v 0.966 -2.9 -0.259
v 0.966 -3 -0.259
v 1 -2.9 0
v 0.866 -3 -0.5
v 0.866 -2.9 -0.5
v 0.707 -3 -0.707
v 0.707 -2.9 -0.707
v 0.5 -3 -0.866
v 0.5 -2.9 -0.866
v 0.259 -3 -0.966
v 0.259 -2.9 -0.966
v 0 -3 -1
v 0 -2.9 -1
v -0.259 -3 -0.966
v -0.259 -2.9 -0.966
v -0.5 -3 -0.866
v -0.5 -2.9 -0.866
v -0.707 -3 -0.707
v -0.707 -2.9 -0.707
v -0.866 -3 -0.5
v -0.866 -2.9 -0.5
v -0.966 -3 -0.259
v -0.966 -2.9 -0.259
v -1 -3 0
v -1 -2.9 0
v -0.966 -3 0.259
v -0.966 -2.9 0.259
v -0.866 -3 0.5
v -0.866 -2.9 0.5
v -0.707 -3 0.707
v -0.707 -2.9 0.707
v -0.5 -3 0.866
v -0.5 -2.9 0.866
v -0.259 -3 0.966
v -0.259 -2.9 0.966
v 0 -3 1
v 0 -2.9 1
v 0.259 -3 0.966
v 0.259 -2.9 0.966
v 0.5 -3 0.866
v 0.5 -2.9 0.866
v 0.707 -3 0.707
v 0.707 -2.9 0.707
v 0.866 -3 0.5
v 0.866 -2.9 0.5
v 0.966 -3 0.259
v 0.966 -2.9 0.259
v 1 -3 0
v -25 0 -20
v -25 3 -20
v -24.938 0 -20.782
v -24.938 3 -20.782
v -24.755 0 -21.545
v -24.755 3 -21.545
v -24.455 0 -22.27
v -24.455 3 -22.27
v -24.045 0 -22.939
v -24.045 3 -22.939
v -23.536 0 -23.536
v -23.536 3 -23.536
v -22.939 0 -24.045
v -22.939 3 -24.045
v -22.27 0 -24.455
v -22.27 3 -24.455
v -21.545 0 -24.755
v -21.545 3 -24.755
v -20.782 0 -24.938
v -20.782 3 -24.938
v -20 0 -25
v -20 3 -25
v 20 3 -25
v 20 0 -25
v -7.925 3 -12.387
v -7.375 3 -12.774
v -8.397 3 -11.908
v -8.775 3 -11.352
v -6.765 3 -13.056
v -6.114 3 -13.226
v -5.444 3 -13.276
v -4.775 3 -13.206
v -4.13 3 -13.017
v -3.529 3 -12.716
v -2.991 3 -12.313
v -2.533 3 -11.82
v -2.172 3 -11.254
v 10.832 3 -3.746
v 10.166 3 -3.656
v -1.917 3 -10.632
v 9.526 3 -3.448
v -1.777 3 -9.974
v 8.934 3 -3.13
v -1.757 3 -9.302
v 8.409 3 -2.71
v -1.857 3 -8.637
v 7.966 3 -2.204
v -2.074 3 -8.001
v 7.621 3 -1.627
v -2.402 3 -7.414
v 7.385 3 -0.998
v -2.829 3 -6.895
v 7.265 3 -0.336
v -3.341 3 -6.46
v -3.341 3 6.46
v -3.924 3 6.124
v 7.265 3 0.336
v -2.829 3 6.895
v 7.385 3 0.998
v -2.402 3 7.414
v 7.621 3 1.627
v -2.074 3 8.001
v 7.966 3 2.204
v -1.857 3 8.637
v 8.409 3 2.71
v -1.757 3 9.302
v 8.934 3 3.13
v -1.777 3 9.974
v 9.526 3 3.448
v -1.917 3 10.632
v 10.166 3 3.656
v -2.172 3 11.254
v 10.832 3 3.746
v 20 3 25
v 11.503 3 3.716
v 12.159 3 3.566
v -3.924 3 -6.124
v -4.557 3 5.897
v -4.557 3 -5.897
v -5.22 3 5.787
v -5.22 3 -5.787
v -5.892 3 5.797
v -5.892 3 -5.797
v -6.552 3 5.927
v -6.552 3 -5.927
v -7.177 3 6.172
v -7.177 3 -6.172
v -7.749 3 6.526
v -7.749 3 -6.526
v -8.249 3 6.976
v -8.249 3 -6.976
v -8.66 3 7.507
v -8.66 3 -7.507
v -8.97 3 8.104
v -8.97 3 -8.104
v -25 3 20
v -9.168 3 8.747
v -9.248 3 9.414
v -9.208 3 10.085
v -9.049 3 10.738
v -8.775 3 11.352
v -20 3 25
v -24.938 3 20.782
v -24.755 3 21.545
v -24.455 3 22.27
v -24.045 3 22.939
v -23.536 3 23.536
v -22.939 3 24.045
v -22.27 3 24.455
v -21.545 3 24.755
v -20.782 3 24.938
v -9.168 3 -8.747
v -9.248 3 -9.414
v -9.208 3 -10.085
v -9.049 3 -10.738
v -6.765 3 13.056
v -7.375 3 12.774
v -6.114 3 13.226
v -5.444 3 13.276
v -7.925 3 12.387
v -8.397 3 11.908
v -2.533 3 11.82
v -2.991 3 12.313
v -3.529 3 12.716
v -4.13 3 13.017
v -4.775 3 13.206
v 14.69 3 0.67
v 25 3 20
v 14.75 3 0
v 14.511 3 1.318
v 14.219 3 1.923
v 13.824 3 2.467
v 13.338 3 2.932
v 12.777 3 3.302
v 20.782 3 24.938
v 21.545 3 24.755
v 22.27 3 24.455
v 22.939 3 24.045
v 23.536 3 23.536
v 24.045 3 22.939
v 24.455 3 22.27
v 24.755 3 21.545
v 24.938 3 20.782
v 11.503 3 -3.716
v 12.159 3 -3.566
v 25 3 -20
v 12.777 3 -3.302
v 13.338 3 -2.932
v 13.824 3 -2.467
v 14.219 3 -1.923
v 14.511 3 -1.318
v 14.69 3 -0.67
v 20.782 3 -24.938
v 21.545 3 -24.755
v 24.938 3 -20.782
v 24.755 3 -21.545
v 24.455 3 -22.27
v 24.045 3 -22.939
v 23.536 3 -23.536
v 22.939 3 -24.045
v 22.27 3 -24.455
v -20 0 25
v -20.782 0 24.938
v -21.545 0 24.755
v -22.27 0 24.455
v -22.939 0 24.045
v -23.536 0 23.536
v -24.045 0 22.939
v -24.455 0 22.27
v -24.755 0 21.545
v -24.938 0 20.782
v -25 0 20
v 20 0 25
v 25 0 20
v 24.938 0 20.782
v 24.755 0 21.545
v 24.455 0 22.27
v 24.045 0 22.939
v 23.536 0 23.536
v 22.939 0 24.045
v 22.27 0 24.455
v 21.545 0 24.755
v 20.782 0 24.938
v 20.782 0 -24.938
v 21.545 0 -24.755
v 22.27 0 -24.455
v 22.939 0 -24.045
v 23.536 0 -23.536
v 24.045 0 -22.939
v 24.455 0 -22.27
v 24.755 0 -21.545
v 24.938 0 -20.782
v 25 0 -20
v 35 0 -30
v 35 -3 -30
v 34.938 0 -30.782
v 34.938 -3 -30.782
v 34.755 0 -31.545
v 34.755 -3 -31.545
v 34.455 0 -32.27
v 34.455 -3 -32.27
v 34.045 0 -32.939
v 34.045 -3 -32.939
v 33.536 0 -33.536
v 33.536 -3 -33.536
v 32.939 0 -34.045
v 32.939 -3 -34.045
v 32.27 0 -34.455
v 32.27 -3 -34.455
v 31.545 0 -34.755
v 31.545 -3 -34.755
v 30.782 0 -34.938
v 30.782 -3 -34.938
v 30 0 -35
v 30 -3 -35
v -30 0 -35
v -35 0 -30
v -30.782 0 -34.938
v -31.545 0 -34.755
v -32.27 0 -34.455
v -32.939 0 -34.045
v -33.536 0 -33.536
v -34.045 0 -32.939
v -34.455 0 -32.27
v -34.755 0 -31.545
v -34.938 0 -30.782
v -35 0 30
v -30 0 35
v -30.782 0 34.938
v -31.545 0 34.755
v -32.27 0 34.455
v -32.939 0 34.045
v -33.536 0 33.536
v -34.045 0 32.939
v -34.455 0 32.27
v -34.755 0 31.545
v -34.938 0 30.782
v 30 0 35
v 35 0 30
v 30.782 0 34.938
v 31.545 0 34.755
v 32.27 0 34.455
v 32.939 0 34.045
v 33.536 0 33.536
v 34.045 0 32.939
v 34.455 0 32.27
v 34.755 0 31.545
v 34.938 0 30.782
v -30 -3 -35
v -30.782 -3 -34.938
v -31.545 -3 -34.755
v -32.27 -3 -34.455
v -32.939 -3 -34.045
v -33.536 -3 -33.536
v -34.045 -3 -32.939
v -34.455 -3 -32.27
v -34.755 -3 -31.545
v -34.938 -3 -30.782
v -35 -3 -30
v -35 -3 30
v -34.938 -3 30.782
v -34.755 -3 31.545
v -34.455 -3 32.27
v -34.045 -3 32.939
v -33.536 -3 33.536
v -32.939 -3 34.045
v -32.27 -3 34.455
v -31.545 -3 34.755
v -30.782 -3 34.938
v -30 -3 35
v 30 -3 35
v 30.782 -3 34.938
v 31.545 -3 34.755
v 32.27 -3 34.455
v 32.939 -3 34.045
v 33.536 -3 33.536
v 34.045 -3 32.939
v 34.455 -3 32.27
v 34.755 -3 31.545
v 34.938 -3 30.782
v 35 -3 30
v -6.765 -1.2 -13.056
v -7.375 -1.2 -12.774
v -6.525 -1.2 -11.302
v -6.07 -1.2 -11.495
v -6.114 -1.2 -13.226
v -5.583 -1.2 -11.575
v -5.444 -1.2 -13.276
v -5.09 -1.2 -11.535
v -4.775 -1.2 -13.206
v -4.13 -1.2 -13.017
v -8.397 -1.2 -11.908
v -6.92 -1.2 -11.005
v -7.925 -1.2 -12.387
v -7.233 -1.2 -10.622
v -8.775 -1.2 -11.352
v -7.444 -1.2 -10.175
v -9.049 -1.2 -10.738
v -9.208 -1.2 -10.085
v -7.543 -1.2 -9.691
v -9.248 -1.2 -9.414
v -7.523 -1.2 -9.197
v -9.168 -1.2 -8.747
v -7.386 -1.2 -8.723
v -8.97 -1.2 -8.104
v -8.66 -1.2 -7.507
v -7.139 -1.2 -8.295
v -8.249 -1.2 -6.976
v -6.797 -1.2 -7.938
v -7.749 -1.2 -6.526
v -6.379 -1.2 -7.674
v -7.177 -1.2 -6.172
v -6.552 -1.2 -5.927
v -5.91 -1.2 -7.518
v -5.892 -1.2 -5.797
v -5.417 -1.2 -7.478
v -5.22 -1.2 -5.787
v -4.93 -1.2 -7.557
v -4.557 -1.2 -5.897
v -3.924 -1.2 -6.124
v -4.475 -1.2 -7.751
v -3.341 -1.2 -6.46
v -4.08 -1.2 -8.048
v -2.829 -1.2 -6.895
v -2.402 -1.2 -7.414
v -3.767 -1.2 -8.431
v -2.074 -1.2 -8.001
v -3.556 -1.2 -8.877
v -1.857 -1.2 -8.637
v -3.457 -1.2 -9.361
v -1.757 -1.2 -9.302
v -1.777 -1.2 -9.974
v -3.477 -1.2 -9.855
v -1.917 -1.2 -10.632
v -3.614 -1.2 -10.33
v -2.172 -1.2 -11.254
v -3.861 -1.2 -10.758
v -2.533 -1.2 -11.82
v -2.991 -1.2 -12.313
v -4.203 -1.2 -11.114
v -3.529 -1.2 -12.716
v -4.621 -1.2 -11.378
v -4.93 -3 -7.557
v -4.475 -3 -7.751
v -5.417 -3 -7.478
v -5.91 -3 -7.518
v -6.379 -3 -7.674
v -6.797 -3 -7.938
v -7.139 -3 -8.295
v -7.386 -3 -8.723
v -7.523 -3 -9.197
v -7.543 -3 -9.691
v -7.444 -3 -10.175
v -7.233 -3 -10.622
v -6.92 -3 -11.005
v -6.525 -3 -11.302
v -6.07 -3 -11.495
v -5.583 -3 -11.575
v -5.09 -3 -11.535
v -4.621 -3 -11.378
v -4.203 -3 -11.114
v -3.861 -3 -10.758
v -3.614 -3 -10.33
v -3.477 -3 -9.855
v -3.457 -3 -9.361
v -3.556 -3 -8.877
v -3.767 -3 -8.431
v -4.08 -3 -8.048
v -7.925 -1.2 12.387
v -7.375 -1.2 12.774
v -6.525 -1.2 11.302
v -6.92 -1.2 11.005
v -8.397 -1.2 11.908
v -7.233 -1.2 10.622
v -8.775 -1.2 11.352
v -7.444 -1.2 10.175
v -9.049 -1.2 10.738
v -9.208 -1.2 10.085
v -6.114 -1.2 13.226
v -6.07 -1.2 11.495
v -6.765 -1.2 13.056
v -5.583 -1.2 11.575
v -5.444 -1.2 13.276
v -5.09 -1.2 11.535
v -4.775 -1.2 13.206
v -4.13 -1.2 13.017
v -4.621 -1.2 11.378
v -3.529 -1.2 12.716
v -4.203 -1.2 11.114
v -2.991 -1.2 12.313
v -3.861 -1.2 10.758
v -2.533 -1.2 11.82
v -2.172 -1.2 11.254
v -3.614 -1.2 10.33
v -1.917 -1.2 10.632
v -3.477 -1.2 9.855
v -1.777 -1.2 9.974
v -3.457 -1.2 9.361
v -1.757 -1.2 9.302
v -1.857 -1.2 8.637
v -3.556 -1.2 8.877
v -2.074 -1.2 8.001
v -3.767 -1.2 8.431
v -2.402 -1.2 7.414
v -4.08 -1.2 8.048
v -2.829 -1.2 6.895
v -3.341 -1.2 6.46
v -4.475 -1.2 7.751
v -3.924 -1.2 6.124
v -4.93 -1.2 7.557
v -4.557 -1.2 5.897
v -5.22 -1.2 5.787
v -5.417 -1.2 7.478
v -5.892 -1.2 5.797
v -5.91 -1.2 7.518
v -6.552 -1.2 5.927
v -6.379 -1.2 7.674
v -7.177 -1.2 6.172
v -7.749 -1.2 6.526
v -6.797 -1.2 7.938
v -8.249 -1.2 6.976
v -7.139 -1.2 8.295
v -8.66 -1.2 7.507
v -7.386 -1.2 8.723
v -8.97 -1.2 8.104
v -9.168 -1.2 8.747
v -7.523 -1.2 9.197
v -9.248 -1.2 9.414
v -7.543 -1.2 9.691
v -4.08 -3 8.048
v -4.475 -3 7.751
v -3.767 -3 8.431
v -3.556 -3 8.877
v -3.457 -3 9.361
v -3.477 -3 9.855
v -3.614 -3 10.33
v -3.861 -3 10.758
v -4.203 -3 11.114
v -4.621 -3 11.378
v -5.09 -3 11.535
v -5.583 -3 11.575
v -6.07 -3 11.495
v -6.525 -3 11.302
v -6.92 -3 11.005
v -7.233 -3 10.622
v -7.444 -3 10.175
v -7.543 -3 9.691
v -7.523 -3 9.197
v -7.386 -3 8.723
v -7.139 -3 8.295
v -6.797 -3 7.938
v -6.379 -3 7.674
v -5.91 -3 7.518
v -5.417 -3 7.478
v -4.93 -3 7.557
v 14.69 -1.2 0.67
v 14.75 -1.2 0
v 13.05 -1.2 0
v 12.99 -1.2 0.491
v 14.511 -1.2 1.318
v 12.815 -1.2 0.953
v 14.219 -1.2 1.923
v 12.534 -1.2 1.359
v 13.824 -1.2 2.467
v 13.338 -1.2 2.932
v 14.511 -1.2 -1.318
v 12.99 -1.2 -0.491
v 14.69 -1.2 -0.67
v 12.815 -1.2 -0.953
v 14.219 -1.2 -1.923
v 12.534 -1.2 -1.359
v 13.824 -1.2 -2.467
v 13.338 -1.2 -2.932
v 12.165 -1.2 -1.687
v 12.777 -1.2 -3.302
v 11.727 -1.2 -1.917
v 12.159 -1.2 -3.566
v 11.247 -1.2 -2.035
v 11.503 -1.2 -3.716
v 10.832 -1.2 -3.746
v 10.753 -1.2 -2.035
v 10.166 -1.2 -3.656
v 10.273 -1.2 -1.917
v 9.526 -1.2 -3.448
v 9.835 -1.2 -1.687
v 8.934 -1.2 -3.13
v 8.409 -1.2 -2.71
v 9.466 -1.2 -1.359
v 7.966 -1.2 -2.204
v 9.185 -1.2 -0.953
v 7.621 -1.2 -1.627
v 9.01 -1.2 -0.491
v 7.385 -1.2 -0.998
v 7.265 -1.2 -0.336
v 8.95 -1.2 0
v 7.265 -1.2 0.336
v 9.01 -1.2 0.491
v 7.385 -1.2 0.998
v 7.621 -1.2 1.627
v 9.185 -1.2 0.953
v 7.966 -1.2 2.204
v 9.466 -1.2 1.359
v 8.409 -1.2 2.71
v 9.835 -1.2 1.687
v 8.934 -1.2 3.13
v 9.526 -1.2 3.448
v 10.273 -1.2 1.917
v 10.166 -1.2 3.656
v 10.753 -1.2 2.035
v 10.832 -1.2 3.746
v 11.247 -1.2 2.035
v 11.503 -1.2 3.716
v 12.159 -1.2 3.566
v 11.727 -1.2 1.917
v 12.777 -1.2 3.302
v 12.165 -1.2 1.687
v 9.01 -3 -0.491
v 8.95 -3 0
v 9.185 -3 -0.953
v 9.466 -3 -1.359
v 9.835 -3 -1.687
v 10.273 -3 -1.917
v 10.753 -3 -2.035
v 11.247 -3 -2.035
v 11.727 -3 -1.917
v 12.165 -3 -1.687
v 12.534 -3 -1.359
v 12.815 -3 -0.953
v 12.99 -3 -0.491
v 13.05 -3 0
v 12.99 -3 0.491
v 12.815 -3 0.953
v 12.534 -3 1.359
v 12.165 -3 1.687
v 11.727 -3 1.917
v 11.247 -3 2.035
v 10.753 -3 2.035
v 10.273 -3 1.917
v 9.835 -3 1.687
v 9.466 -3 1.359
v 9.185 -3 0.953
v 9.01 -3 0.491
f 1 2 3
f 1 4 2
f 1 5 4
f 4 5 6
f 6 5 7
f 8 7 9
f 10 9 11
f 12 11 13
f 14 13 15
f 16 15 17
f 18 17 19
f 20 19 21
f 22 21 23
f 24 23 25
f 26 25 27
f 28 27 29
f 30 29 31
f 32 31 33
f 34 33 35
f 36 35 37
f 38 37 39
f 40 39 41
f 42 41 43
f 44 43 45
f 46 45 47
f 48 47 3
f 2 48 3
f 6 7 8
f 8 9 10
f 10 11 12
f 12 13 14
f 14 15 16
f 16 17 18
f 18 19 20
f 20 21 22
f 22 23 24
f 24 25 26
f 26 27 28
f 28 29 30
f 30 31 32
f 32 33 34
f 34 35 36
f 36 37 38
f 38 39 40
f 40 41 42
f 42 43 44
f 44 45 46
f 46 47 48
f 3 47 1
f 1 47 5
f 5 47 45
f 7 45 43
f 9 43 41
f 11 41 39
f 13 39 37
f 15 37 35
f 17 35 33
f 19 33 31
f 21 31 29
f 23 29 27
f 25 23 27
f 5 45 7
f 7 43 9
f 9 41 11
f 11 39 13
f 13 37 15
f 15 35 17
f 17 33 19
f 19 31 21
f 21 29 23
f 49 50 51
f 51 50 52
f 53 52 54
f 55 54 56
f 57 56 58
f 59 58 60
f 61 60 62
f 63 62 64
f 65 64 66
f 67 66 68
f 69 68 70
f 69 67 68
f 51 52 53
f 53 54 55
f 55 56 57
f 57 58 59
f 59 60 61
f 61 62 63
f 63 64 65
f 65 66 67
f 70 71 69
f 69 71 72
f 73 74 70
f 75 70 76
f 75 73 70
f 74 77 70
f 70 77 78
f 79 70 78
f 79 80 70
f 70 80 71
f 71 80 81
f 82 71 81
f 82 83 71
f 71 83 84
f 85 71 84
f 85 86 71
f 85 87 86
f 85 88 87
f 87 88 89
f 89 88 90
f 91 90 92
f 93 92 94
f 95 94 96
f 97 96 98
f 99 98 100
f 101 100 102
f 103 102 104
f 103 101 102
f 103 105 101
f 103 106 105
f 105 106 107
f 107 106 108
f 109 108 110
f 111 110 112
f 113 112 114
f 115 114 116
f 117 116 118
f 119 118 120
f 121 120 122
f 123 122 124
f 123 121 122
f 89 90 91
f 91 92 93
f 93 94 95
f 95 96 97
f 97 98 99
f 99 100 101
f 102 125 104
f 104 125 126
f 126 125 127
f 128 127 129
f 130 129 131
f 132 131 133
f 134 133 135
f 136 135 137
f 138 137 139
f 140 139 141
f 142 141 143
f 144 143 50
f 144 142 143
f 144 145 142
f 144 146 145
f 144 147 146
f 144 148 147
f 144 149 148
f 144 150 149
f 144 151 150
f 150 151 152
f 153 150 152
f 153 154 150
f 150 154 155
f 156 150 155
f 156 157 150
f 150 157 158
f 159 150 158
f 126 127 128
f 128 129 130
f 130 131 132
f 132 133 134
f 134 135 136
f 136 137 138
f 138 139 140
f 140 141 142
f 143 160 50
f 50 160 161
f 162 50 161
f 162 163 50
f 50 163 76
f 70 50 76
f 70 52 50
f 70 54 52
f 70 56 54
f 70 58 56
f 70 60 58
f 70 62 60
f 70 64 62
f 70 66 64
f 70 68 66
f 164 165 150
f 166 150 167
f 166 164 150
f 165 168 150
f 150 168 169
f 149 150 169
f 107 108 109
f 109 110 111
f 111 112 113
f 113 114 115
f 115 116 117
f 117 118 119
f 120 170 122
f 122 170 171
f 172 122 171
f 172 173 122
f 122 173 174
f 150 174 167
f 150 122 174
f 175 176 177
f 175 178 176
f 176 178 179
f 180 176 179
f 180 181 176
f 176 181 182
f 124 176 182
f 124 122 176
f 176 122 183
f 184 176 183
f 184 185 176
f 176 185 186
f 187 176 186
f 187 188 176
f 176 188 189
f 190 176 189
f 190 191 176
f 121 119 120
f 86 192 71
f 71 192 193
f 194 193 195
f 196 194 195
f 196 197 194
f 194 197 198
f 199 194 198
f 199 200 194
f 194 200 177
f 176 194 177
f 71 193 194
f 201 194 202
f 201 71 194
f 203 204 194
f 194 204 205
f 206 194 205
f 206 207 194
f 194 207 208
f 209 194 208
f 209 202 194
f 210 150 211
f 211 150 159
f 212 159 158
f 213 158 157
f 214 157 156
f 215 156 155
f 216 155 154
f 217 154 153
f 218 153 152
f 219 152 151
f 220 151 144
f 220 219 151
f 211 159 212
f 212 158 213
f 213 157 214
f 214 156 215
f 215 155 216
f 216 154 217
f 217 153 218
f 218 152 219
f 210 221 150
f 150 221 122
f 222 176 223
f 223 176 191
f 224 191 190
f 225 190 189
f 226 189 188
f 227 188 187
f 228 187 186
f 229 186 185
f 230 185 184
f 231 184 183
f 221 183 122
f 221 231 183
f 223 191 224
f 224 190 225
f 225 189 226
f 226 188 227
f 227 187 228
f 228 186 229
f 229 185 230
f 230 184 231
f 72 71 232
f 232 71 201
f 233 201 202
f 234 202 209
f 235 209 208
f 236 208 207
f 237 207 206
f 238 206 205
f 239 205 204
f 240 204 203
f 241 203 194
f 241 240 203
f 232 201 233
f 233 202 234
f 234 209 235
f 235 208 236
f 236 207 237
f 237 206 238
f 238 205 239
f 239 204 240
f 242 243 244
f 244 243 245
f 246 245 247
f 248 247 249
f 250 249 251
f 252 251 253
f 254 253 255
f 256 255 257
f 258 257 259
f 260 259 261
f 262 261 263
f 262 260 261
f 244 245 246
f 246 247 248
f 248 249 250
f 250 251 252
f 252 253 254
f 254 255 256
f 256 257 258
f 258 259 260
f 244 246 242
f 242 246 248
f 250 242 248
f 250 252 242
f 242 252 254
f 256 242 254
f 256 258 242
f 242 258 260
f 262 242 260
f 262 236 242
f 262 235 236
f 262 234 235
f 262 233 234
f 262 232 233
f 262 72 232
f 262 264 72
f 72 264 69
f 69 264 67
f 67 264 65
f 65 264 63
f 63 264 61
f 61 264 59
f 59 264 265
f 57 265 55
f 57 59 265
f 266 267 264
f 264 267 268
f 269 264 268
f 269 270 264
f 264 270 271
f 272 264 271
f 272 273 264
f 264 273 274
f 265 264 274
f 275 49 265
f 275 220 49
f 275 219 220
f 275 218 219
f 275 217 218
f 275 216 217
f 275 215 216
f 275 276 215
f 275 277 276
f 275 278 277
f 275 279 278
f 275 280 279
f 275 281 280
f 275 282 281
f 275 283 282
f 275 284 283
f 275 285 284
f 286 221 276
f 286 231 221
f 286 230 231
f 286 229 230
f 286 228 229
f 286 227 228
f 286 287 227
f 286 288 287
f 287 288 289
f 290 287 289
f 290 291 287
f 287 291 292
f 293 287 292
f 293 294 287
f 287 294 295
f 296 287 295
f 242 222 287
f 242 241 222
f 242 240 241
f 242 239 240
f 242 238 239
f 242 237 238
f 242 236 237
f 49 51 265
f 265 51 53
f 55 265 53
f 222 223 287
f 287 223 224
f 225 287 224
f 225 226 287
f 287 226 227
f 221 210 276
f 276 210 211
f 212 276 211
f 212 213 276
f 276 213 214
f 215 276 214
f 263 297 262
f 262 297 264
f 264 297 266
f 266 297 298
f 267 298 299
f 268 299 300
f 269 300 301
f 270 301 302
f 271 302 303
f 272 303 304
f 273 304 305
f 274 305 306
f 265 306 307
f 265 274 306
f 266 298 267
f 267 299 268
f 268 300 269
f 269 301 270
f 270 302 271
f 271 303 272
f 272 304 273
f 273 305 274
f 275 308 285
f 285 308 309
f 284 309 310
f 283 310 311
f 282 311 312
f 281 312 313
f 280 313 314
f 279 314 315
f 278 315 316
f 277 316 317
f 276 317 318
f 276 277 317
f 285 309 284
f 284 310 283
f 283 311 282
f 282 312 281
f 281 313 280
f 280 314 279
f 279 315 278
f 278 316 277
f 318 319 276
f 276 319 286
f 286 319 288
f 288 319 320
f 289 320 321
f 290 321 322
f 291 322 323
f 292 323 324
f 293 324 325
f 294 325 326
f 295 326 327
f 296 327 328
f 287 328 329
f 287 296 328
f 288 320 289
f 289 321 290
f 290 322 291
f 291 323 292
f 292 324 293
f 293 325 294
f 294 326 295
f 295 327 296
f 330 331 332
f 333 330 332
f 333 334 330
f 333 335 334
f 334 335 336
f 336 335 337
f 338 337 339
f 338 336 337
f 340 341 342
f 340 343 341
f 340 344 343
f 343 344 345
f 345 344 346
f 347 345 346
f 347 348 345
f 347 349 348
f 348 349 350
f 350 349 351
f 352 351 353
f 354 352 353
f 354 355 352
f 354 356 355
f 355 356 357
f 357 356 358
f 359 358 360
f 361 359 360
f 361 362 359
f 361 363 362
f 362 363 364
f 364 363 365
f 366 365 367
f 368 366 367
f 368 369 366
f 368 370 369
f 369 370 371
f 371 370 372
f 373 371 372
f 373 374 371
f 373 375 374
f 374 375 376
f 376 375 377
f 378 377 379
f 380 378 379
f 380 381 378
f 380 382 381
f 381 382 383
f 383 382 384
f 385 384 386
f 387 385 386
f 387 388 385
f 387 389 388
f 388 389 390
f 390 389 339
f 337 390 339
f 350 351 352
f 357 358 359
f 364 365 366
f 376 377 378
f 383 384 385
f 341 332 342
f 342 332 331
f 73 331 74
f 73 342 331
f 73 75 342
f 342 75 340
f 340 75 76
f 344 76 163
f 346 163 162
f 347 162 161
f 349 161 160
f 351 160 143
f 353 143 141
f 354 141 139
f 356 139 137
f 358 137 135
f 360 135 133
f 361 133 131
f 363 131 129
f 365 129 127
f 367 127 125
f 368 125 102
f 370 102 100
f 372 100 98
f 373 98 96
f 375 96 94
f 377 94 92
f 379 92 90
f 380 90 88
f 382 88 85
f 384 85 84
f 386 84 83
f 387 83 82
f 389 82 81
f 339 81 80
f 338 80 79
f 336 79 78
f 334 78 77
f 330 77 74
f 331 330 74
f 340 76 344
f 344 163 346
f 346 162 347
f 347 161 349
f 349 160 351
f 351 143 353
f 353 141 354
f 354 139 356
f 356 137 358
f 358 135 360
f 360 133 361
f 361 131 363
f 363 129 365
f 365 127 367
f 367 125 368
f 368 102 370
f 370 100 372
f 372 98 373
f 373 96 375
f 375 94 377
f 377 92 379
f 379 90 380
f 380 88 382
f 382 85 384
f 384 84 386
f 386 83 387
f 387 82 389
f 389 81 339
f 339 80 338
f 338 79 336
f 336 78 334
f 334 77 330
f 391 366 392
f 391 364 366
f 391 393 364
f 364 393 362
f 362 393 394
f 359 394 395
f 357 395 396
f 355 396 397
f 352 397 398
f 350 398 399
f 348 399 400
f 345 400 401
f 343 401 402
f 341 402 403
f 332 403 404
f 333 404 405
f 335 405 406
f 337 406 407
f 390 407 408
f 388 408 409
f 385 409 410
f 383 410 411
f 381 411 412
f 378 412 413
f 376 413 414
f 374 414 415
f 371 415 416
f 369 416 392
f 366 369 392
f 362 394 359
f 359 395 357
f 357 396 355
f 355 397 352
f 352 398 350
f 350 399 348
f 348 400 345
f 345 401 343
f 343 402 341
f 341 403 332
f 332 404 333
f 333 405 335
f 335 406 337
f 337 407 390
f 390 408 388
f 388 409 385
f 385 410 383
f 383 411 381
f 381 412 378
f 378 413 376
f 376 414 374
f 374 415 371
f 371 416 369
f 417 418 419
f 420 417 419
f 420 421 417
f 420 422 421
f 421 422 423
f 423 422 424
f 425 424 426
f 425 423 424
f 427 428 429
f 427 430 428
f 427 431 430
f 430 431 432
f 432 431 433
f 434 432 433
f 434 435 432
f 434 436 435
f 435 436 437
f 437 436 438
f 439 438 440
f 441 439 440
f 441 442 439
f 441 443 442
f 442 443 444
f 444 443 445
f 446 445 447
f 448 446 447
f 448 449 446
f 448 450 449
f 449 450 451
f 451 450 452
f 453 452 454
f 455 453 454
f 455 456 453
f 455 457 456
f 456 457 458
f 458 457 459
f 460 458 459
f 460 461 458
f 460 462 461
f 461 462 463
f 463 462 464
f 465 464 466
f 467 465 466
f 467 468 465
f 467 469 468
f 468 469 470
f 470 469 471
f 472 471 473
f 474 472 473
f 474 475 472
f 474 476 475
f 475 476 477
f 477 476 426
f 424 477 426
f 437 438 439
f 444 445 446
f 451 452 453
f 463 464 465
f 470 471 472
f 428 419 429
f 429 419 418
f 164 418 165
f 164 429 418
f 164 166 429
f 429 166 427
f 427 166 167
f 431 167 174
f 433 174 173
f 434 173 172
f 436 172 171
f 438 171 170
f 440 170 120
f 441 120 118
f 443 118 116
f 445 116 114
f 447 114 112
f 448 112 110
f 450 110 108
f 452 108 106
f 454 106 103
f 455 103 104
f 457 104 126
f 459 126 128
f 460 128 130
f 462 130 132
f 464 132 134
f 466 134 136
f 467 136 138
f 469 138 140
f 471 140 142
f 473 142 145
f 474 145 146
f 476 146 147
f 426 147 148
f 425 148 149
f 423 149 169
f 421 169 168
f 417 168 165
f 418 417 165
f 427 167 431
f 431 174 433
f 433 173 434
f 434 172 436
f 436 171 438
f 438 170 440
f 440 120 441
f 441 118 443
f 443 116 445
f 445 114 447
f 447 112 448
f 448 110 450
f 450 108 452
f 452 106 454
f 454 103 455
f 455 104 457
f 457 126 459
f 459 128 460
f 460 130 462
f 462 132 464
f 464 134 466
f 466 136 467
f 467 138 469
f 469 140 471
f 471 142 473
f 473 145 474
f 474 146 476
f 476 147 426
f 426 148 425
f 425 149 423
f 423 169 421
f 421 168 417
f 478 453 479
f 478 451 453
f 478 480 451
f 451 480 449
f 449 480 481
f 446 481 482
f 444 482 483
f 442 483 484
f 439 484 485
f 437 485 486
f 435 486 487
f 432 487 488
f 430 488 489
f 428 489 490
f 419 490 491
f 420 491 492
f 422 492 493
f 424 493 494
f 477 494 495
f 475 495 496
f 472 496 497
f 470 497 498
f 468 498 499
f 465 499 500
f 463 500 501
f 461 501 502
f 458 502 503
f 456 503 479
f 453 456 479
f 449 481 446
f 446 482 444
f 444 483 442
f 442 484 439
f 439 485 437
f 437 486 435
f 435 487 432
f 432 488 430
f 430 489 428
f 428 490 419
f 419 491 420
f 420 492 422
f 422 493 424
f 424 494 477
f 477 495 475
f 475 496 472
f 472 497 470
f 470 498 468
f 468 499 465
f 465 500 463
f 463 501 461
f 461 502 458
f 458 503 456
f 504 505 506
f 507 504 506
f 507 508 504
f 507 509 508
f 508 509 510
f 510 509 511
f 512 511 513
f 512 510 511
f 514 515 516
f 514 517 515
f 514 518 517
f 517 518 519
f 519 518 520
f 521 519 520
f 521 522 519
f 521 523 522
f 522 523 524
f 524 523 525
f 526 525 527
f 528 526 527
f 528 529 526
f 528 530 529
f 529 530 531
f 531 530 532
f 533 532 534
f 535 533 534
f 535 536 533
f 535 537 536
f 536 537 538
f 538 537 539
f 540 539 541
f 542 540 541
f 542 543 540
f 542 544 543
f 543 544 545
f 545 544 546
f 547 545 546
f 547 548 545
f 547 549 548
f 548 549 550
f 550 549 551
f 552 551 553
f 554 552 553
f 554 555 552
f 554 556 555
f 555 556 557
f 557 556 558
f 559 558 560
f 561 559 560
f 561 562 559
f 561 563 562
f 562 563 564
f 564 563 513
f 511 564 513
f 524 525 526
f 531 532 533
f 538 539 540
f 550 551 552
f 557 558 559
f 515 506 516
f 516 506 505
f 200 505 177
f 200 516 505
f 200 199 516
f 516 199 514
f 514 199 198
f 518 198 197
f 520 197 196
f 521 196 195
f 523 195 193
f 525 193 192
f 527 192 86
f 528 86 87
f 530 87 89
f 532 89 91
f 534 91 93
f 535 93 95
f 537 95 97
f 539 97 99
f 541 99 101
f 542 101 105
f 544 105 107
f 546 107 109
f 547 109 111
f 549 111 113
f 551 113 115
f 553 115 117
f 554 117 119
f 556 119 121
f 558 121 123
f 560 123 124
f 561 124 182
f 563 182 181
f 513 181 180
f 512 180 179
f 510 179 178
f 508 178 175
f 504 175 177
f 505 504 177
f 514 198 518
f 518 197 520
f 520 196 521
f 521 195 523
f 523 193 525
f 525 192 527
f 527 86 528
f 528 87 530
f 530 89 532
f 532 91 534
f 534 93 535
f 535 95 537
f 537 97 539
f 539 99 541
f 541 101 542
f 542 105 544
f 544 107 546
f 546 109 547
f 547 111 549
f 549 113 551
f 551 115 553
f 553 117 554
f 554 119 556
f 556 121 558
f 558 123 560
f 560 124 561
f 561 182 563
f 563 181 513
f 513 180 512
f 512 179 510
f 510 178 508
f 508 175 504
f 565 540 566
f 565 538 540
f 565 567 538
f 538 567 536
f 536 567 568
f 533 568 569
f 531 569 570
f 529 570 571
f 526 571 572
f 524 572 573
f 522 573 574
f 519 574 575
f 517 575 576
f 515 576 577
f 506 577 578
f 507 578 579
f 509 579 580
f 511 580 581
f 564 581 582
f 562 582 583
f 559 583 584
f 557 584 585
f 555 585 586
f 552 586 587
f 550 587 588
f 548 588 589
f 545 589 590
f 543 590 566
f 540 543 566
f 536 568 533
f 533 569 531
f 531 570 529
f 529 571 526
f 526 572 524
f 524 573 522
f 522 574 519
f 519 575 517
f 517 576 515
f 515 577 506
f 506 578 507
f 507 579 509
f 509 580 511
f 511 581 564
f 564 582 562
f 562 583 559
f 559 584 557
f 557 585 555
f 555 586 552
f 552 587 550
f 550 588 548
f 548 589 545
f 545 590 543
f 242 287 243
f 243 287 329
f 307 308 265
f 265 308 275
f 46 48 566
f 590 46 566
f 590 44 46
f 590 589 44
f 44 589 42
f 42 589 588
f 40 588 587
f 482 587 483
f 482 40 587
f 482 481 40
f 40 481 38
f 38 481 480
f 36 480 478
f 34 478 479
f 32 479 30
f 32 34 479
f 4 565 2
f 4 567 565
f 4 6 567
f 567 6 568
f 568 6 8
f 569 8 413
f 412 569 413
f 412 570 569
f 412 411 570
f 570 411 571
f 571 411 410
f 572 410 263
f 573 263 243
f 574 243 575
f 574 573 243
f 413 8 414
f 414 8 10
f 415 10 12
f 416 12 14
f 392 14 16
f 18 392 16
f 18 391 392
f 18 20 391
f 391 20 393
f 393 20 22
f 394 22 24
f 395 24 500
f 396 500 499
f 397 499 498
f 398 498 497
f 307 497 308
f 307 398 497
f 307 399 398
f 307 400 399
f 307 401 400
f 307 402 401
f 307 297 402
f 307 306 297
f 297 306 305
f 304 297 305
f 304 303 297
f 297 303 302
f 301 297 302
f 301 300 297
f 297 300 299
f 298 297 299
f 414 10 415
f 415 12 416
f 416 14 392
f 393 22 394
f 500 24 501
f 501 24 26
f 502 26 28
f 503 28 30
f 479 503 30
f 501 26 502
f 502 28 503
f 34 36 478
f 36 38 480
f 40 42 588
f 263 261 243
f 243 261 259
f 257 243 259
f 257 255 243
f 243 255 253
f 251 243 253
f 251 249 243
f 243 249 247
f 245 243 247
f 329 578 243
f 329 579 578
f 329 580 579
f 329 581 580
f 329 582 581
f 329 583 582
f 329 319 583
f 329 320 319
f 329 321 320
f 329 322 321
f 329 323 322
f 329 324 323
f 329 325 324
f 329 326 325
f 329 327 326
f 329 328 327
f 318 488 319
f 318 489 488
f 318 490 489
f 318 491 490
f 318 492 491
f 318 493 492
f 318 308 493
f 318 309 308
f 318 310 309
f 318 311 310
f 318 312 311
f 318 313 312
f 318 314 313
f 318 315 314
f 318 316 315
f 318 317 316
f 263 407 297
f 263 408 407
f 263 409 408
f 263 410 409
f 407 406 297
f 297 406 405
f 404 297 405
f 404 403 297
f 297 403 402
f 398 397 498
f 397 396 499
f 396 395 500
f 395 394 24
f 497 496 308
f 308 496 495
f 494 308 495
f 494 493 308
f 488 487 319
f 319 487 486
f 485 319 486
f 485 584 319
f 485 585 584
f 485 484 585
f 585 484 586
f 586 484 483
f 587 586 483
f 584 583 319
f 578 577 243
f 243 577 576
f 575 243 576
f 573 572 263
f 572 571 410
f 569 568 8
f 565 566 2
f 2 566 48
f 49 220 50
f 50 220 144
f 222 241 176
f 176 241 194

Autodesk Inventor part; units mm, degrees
ref_plane "YZ Plane" through (0, 0, 0) normal (1, 0, 0) x (0, 1, 0)
ref_plane "XZ Plane" through (0, 0, 0) normal (0, 1, 0) x (-1, 0, 0)
ref_plane "XY Plane" through (0, 0, 0) normal (0, 0, 1) x (1, 0, 0)
sketch "Sketch1" plane through (0, 0, 0) normal (0, 1, 0) x (-1, 0, 0)
  line L0 (-35, 35) -> (35, 35)
  line L1 (35, 35) -> (35, -35)
  line L2 (35, -35) -> (-35, -35)
  line L3 (-35, -35) -> (-35, 35)
  line L4 (-35, 35) -> (35, -35) construction
  line L5 (35, 35) -> (-35, -35) construction
  line L6 (-25, 25) -> (25, 25)
  line L7 (25, 25) -> (25, -25)
  line L8 (25, -25) -> (-25, -25)
  line L9 (-25, -25) -> (-25, 25)
  line L10 (-25, 25) -> (25, -25) construction
  line L11 (25, 25) -> (-25, -25) construction
  circle A0 centre (0, 0) radius 15 construction
  circle A1 centre (0, 0) radius 11 construction
  point P0 (15, 0)
  dimension "d4" = 30
  dimension "d0" = 70
  dimension "d1" = 70
  dimension "d2" = 50
  dimension "d3" = 50
  dimension "d5" = 22
extrude "Extrusion1" add sketch "Sketch1" along normal blind 3 contours L6 L7 L8 L9
extrude "Extrusion2" add sketch "Sketch1" against normal blind 3 contours L0 L1 L2 L3 | L6 L7 L8 L9
sketch "Sketch2" plane through (0, 3, 0) normal (0, 1, 0) x (1, 0, 0)
  circle A0 centre (0, 0) radius 11 construction
  circle A1 centre (0, 0) radius 15 construction
  point P0 (11, 0)
hole "Hole1" at (11, 3, 0) direction (0, -1, 0) diameter 4.1 end through all counterbore diameter 7.5 counterbore depth 4.2
pattern_circular "Circular Pattern1" count 3 over 360 about axis through (0, 3, 0) along (0, -1, 0) of "Hole1"
fillet "Fillet1" radius 5 8 edges at (35, -1.5, 35) (-35, -1.5, 35) (-35, -1.5, -35) (35, -1.5, -35) (25, 1.5, -25) (25, 1.5, 25) (-25, 1.5, 25) (-25, 1.5, -25)
sketch "Sketch3" plane through (0, -3, 0) normal (0, -1, 0) x (1, 0, 0)
  circle A0 centre (0, 0) radius 1
  dimension "d21" = 2
extrude "Extrusion3" cut sketch "Sketch3" against normal blind 0.1
properties part number "support_plateau_v3"
